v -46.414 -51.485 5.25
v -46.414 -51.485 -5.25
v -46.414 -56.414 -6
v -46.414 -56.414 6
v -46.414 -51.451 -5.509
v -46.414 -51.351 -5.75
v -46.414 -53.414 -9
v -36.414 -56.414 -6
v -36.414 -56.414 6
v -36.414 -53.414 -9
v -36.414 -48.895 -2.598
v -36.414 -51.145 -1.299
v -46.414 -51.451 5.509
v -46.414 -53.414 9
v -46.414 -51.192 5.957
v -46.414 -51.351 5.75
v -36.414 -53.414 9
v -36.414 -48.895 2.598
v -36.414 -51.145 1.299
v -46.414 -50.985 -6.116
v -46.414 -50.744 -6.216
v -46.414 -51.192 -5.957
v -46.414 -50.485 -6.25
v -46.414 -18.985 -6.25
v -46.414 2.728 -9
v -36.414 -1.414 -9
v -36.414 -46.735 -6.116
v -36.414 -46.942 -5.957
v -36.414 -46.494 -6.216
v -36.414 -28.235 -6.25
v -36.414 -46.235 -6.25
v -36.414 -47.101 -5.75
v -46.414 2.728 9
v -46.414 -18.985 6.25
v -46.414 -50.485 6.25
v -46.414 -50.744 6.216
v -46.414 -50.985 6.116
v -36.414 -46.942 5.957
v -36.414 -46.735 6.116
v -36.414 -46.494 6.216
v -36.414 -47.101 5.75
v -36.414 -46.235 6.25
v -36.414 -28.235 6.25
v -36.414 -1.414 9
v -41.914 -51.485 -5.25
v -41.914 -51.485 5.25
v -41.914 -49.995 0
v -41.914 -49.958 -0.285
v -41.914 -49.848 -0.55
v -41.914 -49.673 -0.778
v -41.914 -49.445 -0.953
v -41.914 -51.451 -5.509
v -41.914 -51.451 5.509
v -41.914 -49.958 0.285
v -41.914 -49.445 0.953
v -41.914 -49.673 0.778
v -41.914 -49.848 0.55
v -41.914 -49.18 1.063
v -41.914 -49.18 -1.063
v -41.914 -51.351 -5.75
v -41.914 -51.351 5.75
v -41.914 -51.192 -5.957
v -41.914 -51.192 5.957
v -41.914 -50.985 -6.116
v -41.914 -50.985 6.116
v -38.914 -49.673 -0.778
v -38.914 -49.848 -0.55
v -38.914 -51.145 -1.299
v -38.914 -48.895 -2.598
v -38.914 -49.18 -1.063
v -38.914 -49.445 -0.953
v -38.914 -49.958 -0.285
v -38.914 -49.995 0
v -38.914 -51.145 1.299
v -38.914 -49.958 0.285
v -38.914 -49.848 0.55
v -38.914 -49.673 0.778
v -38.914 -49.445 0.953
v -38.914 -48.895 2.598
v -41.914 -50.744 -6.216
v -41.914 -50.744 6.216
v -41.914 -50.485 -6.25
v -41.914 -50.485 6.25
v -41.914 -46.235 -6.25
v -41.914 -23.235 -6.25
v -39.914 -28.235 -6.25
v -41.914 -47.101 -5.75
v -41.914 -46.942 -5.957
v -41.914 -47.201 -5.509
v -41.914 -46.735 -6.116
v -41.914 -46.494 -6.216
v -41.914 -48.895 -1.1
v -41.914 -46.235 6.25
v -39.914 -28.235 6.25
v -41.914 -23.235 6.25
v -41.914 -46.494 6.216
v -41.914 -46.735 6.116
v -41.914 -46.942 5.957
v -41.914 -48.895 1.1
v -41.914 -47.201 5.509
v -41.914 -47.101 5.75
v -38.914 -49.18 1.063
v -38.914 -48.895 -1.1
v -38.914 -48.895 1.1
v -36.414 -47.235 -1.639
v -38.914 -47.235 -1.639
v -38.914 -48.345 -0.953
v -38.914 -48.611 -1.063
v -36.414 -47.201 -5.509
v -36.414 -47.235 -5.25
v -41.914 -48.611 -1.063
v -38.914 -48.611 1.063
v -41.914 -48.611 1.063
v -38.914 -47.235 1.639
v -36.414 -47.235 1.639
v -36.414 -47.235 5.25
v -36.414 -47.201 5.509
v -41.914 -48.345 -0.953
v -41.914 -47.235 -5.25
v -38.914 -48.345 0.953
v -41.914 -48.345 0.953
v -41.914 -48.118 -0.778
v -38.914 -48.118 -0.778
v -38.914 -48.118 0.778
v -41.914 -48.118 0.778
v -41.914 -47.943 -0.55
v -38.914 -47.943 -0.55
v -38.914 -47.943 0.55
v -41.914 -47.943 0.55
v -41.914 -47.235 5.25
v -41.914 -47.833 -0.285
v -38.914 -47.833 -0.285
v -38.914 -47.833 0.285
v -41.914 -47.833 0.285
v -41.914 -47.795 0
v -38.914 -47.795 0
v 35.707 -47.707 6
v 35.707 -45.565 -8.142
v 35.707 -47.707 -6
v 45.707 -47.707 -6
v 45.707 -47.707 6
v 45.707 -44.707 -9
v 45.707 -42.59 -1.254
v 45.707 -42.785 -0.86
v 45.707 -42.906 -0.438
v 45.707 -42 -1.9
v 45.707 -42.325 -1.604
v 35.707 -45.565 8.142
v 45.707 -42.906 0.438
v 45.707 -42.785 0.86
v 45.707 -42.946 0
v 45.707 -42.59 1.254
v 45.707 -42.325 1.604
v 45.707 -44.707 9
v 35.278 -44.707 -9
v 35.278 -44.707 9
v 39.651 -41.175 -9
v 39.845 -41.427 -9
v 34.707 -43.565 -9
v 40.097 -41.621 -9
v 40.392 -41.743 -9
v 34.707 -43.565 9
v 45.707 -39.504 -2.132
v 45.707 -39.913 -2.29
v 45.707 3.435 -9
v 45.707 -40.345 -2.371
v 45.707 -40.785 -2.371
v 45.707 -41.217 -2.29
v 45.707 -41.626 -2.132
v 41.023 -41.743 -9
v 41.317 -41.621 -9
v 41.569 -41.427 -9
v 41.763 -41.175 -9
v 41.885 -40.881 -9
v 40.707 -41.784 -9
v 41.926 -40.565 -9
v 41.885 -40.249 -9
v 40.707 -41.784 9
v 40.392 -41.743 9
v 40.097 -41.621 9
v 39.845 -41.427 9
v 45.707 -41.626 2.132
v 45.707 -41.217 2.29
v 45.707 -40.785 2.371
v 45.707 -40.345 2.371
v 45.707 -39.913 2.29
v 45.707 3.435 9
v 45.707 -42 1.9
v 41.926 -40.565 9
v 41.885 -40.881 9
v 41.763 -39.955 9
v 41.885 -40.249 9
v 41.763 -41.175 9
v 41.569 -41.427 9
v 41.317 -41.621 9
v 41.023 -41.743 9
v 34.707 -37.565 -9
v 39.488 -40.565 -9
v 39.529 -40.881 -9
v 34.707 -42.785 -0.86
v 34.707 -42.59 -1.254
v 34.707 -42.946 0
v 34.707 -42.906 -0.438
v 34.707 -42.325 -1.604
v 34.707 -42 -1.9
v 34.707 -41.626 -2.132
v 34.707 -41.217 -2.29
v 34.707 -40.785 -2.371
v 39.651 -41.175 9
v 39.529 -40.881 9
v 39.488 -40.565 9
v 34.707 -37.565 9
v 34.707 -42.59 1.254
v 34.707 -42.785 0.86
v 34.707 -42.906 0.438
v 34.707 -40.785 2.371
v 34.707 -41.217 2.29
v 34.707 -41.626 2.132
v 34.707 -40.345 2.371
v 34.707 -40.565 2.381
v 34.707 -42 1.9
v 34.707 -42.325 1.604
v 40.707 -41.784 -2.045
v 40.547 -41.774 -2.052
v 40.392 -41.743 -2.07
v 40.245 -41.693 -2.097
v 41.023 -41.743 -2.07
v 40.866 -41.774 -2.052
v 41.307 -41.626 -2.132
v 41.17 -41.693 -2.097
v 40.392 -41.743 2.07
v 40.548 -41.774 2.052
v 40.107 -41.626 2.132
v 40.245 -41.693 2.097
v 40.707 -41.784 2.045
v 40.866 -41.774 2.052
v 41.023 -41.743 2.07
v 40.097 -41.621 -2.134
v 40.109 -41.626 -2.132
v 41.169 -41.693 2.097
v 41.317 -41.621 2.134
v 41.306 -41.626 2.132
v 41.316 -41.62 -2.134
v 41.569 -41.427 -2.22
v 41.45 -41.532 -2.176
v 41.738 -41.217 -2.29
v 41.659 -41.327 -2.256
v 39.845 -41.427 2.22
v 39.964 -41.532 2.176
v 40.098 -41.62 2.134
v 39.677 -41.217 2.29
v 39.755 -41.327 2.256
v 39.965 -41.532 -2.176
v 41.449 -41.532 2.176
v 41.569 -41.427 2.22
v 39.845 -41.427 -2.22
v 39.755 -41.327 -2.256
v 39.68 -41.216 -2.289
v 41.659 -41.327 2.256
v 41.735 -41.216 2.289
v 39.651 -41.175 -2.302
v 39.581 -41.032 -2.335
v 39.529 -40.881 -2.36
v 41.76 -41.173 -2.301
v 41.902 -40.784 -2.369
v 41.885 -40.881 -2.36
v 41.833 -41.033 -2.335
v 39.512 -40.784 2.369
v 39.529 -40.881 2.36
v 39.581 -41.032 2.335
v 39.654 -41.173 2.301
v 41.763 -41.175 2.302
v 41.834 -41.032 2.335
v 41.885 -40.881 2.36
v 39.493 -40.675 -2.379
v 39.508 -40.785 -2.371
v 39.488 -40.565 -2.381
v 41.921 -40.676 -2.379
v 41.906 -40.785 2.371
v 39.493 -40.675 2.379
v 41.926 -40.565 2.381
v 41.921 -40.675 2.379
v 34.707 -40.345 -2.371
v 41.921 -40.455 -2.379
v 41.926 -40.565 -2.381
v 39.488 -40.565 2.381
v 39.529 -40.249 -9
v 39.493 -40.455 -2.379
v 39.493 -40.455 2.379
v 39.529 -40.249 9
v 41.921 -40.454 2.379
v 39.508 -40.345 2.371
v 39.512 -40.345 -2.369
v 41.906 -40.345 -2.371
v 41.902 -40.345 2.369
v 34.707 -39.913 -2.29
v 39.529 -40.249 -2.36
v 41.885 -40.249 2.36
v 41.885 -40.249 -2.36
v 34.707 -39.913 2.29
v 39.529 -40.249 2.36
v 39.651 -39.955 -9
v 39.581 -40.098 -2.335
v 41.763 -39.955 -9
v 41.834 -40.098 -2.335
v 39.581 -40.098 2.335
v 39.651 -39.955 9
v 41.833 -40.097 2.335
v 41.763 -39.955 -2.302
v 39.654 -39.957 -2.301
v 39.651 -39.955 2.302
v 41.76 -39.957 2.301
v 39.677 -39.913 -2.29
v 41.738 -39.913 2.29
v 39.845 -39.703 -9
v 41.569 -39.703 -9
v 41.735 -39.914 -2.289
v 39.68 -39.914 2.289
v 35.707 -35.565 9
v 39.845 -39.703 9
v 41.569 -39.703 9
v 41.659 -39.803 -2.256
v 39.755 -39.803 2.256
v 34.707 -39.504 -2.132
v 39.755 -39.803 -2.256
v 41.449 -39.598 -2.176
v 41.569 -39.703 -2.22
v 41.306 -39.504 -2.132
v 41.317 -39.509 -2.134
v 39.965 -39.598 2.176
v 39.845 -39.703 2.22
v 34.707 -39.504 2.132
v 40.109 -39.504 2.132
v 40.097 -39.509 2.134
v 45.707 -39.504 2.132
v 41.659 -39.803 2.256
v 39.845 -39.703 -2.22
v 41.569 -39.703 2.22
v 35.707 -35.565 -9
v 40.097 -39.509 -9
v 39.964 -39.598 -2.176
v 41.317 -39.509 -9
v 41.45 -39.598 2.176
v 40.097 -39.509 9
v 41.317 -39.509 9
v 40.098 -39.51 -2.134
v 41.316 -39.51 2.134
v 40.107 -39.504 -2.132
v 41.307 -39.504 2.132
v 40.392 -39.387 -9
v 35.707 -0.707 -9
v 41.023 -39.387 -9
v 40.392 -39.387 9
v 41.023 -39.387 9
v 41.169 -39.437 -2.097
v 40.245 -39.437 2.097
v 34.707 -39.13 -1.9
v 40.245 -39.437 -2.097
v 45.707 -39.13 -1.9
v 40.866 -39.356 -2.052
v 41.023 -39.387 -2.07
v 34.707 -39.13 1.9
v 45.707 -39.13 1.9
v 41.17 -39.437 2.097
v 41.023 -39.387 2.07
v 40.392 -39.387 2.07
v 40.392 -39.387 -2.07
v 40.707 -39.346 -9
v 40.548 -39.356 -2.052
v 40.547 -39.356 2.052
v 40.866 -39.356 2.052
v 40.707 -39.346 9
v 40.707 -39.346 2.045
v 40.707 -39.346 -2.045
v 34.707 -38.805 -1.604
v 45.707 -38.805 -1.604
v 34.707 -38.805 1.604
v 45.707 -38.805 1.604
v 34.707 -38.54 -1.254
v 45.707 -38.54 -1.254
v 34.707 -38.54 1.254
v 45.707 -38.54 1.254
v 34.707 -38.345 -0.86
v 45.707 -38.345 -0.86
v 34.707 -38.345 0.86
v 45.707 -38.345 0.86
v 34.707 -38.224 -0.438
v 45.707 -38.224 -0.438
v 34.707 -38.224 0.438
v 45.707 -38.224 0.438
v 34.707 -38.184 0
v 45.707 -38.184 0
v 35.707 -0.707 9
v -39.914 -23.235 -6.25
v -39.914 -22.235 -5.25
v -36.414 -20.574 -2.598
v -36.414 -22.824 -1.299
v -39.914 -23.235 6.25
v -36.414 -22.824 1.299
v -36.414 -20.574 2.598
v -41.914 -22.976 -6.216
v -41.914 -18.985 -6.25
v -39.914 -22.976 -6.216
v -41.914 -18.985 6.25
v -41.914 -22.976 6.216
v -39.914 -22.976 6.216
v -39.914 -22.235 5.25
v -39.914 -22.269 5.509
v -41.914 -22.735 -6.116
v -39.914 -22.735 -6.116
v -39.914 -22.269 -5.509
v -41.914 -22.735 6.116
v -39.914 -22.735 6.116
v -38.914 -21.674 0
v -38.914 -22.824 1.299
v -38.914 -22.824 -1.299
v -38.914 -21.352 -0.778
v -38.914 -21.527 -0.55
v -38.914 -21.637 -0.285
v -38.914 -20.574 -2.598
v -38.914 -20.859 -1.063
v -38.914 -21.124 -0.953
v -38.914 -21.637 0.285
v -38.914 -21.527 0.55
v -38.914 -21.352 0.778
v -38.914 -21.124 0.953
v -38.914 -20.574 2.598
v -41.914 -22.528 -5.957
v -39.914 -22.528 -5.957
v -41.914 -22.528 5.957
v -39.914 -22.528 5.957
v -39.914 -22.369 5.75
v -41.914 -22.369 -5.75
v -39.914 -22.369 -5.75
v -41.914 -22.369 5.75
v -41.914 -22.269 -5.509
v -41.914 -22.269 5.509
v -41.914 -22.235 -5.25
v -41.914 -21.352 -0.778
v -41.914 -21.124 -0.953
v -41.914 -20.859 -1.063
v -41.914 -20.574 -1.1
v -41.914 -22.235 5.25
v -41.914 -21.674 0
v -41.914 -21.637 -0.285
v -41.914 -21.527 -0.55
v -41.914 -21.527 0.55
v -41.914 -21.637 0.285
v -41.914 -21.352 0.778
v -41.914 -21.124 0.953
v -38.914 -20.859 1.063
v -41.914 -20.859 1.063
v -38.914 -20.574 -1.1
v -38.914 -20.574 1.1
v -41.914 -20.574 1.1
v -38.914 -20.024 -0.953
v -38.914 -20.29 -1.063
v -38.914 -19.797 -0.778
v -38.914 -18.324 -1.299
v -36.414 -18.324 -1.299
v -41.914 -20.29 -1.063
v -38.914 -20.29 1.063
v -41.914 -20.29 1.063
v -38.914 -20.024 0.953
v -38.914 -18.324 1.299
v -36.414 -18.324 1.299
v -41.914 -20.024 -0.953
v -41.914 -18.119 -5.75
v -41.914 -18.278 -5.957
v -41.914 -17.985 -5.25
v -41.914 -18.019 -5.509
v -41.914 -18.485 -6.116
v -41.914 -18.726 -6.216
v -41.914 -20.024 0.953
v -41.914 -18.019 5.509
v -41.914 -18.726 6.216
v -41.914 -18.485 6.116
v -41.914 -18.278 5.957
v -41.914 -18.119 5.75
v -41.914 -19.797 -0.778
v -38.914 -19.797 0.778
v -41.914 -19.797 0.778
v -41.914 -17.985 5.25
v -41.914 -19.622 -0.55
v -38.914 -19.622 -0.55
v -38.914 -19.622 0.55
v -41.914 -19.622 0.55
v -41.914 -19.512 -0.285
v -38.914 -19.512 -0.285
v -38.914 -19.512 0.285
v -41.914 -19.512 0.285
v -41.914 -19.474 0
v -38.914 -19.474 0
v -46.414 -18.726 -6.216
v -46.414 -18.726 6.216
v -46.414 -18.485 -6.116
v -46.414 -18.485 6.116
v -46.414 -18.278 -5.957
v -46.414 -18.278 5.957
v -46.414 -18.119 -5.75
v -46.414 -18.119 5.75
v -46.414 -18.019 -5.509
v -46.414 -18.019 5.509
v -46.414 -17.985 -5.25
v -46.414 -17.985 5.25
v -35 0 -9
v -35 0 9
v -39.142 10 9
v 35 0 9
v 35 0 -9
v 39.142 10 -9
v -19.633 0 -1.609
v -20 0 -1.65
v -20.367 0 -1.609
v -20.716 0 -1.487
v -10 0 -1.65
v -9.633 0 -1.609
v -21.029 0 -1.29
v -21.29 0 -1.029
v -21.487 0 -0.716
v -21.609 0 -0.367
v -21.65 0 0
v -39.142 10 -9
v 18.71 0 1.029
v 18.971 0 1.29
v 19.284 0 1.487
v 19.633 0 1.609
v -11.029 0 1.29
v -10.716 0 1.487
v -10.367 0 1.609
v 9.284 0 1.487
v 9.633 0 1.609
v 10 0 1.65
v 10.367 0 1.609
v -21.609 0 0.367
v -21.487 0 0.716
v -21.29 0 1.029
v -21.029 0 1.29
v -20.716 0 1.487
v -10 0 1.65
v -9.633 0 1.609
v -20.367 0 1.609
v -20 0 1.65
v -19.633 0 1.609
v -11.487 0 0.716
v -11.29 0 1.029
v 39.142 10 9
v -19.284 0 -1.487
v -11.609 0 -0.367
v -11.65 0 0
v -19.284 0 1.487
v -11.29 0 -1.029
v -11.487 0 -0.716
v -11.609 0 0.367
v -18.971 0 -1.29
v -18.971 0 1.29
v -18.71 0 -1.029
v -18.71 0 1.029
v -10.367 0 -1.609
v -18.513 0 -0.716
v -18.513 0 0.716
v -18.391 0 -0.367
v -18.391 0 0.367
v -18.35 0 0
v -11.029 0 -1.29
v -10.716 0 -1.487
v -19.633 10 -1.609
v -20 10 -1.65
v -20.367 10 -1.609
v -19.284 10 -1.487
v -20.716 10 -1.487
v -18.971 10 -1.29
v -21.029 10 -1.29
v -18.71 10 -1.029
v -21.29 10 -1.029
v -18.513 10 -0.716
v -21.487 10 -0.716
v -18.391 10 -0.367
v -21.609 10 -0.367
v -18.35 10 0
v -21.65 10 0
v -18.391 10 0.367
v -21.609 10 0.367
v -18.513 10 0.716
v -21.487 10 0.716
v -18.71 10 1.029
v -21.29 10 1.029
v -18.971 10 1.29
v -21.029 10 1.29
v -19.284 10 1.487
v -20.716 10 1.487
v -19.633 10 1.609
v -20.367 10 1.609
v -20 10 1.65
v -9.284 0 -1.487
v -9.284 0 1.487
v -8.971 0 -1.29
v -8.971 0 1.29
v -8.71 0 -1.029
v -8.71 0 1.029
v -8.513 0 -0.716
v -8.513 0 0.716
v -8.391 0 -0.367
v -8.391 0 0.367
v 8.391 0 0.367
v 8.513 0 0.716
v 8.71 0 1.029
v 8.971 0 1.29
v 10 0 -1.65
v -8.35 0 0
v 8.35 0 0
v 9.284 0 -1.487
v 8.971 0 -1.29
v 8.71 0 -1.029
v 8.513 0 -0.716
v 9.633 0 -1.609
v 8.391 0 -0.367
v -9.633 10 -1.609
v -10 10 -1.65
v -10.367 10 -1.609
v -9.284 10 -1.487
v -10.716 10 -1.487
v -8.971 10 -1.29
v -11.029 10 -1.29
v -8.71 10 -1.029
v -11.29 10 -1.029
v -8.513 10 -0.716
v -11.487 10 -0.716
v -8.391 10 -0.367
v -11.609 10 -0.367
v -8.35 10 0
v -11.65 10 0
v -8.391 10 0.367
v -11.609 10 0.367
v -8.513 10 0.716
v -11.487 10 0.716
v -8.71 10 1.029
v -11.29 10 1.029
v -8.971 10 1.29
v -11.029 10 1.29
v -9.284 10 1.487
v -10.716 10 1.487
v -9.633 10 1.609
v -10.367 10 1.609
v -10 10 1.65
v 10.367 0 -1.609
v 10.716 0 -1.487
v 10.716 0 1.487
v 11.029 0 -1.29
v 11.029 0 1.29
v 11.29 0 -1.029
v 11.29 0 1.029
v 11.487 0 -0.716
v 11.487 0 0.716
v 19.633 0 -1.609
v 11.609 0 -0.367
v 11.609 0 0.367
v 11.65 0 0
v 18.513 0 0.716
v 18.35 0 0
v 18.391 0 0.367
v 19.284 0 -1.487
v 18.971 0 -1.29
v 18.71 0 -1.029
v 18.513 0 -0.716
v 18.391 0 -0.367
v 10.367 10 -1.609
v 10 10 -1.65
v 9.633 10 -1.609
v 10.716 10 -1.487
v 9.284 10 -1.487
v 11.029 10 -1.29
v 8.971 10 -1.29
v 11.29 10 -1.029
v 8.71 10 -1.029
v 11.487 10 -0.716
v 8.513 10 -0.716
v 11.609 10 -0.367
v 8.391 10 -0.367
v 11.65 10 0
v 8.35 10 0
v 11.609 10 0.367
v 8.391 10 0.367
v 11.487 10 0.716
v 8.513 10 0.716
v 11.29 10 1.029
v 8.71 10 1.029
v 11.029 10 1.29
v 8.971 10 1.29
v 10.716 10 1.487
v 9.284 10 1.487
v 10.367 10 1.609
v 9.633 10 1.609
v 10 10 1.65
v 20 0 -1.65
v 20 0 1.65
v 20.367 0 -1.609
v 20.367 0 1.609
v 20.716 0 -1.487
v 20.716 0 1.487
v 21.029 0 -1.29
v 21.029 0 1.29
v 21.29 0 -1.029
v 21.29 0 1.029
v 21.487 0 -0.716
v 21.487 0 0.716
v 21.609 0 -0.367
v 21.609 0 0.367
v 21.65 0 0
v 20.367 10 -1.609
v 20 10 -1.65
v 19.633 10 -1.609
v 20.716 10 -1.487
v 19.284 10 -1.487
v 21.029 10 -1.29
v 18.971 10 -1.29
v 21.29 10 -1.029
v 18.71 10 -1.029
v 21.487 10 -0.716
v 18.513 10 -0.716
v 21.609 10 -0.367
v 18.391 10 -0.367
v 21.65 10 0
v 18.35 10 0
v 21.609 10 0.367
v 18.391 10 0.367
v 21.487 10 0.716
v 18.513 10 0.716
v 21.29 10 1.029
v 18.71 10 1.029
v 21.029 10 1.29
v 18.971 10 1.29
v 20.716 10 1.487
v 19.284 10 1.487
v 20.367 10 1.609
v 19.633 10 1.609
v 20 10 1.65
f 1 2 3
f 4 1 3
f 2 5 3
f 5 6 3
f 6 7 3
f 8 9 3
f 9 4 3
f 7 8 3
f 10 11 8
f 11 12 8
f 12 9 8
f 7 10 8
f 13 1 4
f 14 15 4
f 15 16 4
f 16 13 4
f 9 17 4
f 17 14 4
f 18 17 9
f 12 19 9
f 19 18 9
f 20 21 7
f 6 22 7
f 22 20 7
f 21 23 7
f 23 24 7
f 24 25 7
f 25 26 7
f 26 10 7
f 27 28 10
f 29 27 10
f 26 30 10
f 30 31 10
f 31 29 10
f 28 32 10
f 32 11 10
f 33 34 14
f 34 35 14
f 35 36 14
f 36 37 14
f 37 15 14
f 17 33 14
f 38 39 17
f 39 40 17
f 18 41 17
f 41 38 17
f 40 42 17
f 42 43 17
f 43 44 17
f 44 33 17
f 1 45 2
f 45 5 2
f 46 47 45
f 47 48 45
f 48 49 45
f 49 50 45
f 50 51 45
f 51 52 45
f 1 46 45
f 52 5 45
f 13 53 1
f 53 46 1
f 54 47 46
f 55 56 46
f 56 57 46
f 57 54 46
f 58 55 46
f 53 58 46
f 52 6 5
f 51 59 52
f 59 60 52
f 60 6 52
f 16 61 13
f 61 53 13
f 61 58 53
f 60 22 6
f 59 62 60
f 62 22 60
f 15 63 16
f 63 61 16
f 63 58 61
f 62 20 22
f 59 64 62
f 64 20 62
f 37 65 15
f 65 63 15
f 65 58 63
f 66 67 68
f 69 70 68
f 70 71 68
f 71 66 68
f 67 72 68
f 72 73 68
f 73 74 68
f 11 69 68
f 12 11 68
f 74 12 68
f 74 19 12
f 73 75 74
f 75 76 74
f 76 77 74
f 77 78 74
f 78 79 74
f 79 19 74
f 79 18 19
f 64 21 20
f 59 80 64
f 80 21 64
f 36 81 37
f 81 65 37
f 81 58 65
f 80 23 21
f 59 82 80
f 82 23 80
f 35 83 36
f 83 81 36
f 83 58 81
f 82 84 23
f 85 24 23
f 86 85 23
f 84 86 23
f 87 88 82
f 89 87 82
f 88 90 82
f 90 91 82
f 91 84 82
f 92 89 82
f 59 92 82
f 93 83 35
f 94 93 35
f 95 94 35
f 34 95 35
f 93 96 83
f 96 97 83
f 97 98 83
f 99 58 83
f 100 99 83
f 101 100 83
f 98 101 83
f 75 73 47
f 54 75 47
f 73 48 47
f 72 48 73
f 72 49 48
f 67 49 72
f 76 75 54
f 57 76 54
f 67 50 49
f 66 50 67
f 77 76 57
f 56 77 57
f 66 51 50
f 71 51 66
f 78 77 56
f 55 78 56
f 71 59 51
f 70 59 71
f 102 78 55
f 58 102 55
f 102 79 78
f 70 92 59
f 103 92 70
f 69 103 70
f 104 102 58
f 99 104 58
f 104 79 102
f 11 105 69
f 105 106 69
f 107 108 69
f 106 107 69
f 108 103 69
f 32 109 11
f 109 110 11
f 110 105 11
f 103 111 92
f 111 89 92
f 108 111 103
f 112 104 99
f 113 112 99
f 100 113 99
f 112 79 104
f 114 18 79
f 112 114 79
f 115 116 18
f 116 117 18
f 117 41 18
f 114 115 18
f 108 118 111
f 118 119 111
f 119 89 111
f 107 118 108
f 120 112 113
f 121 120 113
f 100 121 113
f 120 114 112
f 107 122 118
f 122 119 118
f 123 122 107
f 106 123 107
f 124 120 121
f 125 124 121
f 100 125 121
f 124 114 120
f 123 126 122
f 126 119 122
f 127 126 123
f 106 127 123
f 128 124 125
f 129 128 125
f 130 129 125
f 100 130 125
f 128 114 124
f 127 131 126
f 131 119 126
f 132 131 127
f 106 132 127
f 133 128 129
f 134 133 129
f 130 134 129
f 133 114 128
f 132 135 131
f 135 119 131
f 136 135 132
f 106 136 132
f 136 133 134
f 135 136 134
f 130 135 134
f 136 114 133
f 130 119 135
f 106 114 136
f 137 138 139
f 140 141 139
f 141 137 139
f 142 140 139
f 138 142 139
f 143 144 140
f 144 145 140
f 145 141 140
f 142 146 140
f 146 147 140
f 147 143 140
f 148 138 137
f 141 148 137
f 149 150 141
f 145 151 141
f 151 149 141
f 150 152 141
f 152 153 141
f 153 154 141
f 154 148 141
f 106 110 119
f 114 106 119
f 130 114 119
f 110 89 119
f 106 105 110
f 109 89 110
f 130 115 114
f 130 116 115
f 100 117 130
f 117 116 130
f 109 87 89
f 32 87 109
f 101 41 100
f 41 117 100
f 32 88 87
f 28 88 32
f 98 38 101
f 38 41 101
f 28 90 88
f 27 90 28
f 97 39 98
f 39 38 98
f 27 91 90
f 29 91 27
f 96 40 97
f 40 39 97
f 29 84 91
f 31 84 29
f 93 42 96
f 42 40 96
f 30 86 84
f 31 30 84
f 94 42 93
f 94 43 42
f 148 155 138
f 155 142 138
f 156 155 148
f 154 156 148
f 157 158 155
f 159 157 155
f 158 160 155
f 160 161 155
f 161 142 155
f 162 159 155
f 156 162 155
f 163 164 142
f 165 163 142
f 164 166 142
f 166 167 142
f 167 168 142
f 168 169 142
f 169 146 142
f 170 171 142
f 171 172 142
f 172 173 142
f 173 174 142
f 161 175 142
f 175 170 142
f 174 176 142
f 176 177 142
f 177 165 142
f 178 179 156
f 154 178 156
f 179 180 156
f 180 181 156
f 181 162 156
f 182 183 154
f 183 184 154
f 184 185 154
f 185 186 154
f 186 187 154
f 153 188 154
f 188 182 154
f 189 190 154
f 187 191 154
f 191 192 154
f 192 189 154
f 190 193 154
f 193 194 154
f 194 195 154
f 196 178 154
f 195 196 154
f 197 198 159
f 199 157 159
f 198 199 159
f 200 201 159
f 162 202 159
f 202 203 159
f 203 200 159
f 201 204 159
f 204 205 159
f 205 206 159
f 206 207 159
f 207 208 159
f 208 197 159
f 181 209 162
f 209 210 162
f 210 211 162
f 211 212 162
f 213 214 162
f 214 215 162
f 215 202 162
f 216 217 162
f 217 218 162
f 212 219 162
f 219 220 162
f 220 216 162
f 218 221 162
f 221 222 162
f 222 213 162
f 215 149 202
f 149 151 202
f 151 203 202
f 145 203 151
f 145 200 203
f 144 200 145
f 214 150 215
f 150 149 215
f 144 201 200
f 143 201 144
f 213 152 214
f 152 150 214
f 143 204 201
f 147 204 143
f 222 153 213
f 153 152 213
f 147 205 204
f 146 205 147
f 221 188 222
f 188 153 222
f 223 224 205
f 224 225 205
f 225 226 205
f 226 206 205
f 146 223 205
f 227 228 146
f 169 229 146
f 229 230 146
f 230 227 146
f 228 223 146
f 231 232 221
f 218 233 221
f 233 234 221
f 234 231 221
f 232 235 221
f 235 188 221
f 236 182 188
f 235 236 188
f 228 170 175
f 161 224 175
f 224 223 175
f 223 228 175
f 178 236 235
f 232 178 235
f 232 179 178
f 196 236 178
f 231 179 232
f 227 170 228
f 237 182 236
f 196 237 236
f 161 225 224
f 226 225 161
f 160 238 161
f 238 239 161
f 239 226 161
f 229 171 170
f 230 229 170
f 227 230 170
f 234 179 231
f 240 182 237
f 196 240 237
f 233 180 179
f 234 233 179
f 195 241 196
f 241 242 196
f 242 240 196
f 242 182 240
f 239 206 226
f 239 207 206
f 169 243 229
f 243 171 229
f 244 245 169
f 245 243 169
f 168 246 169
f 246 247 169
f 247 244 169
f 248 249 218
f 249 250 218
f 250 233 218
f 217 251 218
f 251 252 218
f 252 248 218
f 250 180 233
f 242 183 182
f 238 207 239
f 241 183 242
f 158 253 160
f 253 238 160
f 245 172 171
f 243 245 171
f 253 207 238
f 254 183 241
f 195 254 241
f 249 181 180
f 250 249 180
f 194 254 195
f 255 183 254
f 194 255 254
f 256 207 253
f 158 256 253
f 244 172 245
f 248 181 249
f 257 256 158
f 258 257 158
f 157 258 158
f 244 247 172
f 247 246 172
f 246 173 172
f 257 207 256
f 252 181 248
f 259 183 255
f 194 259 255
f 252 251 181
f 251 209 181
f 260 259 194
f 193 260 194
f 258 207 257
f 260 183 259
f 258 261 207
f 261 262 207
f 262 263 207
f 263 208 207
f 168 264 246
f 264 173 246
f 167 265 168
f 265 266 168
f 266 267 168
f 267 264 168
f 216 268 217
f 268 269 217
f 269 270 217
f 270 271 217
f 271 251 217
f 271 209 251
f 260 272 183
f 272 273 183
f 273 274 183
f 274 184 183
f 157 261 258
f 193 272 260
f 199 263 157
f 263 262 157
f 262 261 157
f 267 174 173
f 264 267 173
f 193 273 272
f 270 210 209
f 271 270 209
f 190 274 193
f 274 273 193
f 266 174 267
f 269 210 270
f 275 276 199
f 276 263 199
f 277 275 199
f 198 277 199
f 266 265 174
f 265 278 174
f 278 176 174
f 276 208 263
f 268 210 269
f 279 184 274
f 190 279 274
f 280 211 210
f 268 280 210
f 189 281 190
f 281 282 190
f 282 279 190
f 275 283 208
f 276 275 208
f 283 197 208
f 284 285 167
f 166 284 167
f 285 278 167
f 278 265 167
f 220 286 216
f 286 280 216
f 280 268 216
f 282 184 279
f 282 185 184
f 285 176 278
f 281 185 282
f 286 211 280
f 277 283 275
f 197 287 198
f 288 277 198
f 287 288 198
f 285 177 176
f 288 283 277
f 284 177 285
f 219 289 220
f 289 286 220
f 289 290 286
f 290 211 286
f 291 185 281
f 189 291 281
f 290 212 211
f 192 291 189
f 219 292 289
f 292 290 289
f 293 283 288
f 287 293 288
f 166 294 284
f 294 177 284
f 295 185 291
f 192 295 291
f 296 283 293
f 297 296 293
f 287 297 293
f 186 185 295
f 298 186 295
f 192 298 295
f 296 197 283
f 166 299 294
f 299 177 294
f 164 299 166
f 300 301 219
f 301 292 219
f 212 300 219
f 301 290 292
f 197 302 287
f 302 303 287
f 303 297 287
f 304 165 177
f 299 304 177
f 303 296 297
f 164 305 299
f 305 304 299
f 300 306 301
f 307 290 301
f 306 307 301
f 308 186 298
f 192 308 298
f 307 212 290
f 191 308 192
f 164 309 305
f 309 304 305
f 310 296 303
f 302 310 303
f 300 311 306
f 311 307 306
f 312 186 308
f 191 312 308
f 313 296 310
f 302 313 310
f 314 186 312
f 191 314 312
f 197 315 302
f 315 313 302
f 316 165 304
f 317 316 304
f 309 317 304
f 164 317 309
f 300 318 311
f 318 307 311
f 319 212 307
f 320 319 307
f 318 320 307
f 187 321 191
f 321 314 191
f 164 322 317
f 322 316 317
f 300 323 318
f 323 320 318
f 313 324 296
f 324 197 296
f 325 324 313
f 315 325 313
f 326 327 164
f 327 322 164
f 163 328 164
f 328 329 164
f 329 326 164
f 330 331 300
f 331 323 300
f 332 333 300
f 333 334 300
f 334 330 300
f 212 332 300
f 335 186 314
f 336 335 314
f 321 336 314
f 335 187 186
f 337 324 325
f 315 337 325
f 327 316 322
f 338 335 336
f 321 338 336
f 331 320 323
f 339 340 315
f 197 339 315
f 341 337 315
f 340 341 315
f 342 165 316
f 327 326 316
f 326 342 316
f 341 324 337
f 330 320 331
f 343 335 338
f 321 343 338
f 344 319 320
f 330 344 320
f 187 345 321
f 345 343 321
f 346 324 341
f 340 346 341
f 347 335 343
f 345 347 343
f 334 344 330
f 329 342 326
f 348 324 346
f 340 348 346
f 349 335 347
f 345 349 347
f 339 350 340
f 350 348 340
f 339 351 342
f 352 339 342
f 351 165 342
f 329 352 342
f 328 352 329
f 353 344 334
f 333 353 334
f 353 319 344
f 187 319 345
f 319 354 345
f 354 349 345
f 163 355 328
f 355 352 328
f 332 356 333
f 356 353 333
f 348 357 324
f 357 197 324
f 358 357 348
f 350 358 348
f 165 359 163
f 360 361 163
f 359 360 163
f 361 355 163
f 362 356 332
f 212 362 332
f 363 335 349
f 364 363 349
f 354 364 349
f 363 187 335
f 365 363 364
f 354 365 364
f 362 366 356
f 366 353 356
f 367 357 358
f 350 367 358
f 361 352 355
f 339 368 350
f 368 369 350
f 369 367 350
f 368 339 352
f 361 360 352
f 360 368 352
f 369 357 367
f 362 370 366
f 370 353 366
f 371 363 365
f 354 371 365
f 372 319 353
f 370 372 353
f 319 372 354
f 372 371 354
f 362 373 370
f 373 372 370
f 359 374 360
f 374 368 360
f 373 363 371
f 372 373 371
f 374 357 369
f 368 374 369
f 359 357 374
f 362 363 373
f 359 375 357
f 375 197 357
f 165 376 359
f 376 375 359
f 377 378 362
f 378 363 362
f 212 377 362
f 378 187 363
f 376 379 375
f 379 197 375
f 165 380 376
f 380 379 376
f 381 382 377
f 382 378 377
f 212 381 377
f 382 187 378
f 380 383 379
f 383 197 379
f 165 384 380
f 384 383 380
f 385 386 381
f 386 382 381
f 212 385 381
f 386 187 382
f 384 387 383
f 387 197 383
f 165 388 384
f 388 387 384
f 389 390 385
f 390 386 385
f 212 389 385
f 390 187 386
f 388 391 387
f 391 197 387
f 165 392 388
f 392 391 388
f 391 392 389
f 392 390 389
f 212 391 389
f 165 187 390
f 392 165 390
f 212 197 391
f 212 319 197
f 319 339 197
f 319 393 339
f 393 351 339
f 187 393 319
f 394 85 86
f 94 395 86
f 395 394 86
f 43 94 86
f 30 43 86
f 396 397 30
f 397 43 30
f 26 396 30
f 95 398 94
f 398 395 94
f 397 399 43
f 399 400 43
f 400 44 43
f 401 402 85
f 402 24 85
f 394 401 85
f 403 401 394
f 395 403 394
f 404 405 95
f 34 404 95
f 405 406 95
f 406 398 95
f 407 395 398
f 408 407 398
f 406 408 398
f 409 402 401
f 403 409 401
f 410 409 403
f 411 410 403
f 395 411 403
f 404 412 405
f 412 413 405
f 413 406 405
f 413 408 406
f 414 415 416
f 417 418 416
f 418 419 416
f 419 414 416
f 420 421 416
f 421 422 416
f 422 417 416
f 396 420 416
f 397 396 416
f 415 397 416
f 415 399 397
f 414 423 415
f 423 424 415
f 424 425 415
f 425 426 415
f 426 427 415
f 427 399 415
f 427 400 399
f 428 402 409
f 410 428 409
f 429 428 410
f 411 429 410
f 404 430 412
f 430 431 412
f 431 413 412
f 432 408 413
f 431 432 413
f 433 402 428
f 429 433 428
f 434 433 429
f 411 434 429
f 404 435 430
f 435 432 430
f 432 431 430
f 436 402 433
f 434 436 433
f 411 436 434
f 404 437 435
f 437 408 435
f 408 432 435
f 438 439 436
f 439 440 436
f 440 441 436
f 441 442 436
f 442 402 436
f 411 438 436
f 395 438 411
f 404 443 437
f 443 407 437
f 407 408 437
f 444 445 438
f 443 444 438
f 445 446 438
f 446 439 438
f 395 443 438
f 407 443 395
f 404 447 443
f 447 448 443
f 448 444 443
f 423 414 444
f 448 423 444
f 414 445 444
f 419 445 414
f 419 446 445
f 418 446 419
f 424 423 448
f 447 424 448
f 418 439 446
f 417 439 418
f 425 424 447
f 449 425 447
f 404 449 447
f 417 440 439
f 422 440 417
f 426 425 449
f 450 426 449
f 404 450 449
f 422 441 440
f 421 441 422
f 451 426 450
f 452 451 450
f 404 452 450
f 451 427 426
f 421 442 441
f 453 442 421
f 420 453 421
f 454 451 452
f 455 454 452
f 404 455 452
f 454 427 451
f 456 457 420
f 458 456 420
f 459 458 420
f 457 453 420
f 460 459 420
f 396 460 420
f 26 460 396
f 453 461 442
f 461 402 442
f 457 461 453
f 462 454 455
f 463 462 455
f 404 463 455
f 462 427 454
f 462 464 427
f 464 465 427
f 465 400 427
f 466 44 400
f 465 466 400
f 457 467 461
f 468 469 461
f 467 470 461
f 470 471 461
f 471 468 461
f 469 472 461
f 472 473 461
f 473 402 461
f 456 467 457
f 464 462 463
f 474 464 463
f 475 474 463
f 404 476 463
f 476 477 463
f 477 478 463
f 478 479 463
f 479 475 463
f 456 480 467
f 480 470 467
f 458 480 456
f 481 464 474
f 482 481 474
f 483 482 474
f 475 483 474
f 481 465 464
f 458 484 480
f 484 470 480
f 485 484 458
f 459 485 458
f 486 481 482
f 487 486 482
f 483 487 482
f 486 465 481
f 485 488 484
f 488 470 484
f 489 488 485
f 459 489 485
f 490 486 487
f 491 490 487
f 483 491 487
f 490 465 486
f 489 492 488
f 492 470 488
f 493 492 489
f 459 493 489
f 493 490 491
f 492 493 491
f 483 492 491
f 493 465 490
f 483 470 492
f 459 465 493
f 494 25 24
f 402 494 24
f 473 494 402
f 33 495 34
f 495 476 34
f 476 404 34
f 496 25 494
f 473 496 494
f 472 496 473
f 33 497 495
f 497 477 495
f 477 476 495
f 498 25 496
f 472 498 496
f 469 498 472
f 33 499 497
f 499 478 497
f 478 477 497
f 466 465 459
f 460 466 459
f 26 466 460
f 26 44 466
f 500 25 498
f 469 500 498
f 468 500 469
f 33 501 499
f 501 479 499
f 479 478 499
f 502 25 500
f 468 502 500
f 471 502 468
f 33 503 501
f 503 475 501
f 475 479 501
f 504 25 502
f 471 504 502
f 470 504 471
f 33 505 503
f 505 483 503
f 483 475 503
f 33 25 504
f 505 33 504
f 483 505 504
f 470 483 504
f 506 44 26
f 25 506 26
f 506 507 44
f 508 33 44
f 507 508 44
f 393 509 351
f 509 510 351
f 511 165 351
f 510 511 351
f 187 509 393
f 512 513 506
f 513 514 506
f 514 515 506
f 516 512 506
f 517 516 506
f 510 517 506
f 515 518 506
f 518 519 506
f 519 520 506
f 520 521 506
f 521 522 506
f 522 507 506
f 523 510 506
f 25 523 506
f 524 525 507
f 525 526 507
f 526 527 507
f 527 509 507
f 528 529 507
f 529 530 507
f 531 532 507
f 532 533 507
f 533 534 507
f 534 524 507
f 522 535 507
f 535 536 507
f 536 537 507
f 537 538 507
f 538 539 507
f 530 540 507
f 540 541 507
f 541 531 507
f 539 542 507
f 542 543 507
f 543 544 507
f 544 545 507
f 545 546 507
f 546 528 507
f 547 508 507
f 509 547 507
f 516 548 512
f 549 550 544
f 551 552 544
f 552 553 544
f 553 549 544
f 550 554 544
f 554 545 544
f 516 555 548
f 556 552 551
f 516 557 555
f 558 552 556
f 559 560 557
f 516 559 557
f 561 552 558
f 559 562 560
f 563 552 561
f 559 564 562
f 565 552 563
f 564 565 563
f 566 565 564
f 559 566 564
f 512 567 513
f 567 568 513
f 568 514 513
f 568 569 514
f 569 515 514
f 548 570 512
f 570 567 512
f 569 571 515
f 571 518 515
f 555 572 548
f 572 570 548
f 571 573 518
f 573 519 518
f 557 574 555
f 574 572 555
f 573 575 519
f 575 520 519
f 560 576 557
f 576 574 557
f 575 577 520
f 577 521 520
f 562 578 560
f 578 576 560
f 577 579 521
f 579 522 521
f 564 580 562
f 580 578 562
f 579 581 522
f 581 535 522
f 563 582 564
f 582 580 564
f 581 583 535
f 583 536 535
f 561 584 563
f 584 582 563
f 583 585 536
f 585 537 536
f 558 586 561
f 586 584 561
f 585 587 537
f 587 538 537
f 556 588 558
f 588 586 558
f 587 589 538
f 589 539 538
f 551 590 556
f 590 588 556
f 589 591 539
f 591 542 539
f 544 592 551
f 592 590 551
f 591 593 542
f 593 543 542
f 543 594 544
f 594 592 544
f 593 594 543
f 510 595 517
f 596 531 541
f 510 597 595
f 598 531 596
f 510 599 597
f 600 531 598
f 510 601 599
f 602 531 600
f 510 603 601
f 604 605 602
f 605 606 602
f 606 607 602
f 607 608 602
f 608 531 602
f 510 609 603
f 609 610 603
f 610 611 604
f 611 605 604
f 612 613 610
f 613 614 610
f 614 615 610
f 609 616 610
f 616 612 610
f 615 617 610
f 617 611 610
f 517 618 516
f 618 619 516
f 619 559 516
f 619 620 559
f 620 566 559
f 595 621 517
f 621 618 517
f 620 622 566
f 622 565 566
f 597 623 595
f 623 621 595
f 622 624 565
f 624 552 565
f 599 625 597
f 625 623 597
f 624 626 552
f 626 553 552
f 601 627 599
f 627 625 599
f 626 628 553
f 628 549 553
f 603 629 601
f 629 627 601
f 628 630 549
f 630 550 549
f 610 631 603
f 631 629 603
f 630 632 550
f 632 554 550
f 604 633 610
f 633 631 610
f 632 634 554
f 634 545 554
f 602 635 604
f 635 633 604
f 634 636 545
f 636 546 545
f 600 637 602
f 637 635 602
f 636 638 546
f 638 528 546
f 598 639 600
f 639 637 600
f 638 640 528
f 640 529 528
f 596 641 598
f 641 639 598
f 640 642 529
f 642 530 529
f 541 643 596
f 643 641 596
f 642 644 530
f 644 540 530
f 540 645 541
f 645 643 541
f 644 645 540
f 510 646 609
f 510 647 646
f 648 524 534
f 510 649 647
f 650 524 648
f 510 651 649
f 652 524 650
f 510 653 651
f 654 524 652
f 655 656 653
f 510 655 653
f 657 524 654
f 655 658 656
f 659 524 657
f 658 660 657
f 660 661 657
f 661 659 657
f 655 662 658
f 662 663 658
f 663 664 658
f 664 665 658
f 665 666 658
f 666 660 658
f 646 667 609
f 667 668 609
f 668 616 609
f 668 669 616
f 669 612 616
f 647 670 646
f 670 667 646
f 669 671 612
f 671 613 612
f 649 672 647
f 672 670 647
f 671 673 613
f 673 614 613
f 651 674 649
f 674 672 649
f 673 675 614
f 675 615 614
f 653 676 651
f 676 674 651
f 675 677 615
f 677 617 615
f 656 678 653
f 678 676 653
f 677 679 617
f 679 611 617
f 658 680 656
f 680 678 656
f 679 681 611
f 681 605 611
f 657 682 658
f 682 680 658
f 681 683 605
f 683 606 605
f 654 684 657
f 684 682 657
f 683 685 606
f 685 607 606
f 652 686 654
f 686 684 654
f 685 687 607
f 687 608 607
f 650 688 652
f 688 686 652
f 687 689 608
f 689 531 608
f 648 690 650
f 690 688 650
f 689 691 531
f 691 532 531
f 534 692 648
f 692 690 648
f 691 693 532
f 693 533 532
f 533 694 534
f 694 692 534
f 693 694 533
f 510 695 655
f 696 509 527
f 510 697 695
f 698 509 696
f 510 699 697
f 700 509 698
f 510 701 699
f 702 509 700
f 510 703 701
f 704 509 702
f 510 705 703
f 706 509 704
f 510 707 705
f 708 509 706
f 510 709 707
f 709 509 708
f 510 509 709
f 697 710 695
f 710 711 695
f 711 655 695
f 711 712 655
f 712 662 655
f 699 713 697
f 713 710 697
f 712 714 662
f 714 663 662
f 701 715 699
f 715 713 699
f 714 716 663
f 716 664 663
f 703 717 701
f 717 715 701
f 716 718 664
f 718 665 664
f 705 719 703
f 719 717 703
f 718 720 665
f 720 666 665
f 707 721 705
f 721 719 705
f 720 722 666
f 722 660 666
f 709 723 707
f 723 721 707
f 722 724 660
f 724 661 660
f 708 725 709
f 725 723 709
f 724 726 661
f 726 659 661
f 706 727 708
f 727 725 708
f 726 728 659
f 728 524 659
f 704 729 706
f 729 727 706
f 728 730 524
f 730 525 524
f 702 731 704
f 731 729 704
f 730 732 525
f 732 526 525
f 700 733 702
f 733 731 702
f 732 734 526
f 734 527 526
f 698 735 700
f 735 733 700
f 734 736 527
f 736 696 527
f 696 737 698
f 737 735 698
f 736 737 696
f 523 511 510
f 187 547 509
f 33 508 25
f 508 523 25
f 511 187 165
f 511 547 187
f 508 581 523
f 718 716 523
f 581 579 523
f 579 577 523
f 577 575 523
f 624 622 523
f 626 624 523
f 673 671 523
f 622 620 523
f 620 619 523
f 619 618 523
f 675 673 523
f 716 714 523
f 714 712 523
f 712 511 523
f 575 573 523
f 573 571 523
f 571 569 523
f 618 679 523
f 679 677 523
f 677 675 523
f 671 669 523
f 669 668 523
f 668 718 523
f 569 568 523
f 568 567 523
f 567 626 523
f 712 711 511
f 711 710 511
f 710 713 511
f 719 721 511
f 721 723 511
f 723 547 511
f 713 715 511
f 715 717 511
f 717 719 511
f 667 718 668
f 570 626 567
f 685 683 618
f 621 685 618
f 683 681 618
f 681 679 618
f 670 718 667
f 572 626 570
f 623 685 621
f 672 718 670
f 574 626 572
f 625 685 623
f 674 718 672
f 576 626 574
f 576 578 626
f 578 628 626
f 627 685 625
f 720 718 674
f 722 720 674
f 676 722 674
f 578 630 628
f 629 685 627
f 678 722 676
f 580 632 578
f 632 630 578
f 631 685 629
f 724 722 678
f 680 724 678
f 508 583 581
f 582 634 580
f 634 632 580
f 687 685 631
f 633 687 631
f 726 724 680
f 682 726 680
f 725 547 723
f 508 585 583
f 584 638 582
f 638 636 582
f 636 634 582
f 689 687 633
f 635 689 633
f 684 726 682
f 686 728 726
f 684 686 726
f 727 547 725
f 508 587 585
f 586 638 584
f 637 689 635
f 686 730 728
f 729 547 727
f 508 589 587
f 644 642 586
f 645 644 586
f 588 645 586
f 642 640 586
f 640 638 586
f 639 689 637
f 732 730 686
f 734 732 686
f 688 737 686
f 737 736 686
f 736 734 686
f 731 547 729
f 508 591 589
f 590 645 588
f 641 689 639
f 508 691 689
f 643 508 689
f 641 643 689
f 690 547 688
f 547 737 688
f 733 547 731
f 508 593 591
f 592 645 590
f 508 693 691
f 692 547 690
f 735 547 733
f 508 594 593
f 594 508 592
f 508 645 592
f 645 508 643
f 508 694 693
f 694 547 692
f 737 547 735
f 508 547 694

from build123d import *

# Parameters (mm, degrees)
BOSS_EXTRUDE1_DEPTH             = 9
SKETCH2_R                       = 0.5
CUT_EXTRUDE1_DEPTH              = 67.414213562
SKETCH9_R                       = 2.38125
PIN_HOLE_DEPTH                  = 93.121320344
SKETCH20_R                      = 1.21925
SPRING_PIN_DEPTH                = 10
SPRING_PIN_DEPTH_BACK           = 10
SKETCH32_W                      = 12.5
SKETCH32_H                      = 33.5
CUT_EXTRUDE11_DEPTH             = 4.5
CUT_EXTRUDE12_REACH             = 89.621
SKETCH33_W                      = 12.5
SKETCH33_H                      = 25
CUT_EXTRUDE13_REACH             = 89.621
SKETCH34_R                      = 1.1
FILLET1_R                       = 1
TAP_DRILL_FOR_M4X0_7_TAP1_D     = 3.3
TAP_DRILL_FOR_M4X0_7_TAP1_DEPTH = 66.414213562
SKETCH41_W                      = 12.5
SKETCH41_H                      = 6
BOSS_EXTRUDE4_DEPTH             = 3.5
CUT_EXTRUDE14_DEPTH             = 2.5
BOSS_EXTRUDE6_DEPTH             = 9
CHAMFER1_SIZE                   = 3
CUT_EXTRUDE15_REACH             = 84.121
SKETCH45_R                      = 2.38125


with BuildPart() as part:
    # Sketch1 → Boss-Extrude1 (new body, symmetric)
    with BuildSketch(Plane.XY):
        Polygon((-35, 0), (35, 0), (35.707106781, -0.707106781), (35.707106781, -47.707106781), (45.707106781, -47.707106781), (45.707106781, 3.435028843), (39.142135624, 10), (-39.142135624, 10), (-46.414213562, 2.727922061), (-46.414213562, -56.414213562), (-36.414213562, -56.414213562), (-36.414213562, -1.414213562), align=None)
    extrude(amount=BOSS_EXTRUDE1_DEPTH, both=True)

    # Sketch2 → Cut-Extrude1 (cut, through all)
    with BuildSketch(Plane(origin=(0, 10, 0), x_dir=(1, 0, 0), z_dir=(0, 1, 0))):
        with Locations((-10, 0)):
            Circle(SKETCH2_R)
        with Locations((10, 0)):
            Circle(SKETCH2_R)
        with Locations((-20, 0)):
            Circle(SKETCH2_R)
        with Locations((20, 0)):
            Circle(SKETCH2_R)
    extrude(amount=-CUT_EXTRUDE1_DEPTH, mode=Mode.SUBTRACT)

    # Sketch9 → Pin Hole (cut, through all)
    with BuildSketch(Plane(origin=(45.707106781, 0, 0), x_dir=(0, 0, -1), z_dir=(1, 0, 0))):
        with Locations((0, -40.564971157)):
            Circle(SKETCH9_R)
    extrude(amount=-PIN_HOLE_DEPTH, mode=Mode.SUBTRACT)

    # Sketch20 → spring pin (cut, two sides)
    with BuildSketch(Plane.XY) as spring_pin_sk:
        with Locations((40.707106781, -40.564971157)):
            Circle(SKETCH20_R)
    extrude(amount=SPRING_PIN_DEPTH, mode=Mode.SUBTRACT)
    extrude(spring_pin_sk.sketch, amount=-SPRING_PIN_DEPTH_BACK, mode=Mode.SUBTRACT)

    # Sketch32 → Cut-Extrude11 (cut)
    with BuildSketch(Plane.ZY.offset(46.414213562)):
        with Locations((0, -34.734971157)):
            Rectangle(SKETCH32_W, SKETCH32_H)
    extrude(amount=-CUT_EXTRUDE11_DEPTH, mode=Mode.SUBTRACT)

    # Sketch33 → Cut-Extrude12 (cut, up to next)
    with BuildSketch(Plane.ZY.offset(41.914213562), mode=Mode.PRIVATE) as cut_extrude12_sk1:
        with Locations((0, -34.734971157)):
            Rectangle(SKETCH33_W, SKETCH33_H)
    cut_extrude12_tool1 = extrude(cut_extrude12_sk1.sketch, amount=-CUT_EXTRUDE12_REACH, mode=Mode.PRIVATE) & part.part
    add(cut_extrude12_tool1.solids().sort_by_distance((-41.914214, -34.734971, 0))[0], mode=Mode.SUBTRACT)

    # Sketch34 → Cut-Extrude13 (cut, up to next)
    with BuildSketch(Plane.ZY.offset(41.914213562), mode=Mode.PRIVATE) as cut_extrude13_sk1:
        with Locations((0, -20.574371157)):
            Circle(SKETCH34_R)
    cut_extrude13_tool1 = extrude(cut_extrude13_sk1.sketch, amount=-CUT_EXTRUDE13_REACH, mode=Mode.PRIVATE) & part.part
    add(cut_extrude13_tool1.solids().sort_by_distance((-41.914214, -20.574371, 0))[0], mode=Mode.SUBTRACT)
    # Sketch34 → Cut-Extrude13 (cut, up to next)
    with BuildSketch(Plane.ZY.offset(41.914213562), mode=Mode.PRIVATE) as cut_extrude13_sk2:
        with Locations((0, -48.895371157)):
            Circle(SKETCH34_R)
    cut_extrude13_tool2 = extrude(cut_extrude13_sk2.sketch, amount=-CUT_EXTRUDE13_REACH, mode=Mode.PRIVATE) & part.part
    add(cut_extrude13_tool2.solids().sort_by_distance((-41.914214, -48.895371, 0))[0], mode=Mode.SUBTRACT)

    # Fillet1
    fillet1_edges = [part.edges().sort_by_distance(p)[0] for p in [
        (-44.164213562, -17.984971157, 6.25),
        (-44.164213562, -51.484971157, 6.25),
        (-44.164213562, -51.484971157, -6.25),
        (-44.164213562, -17.984971157, -6.25),
        (-39.164213562, -22.234971157, -6.25),
        (-39.164213562, -47.234971157, -6.25),
        (-39.164213562, -47.234971157, 6.25),
        (-39.164213562, -22.234971157, 6.25),
    ]]
    fillet(fillet1_edges, radius=FILLET1_R)

    # Tap Drill for M4x0.7 Tap1
    with Locations(Plane(origin=(0, 10, 0), x_dir=(1, 0, 0), z_dir=(0, 1, 0))):
        with Locations((-20, 0), (20, 0), (-10, 0), (10, 0)):
            Hole(TAP_DRILL_FOR_M4X0_7_TAP1_D / 2, depth=TAP_DRILL_FOR_M4X0_7_TAP1_DEPTH)

    # Sketch41 → Boss-Extrude4 (add)
    with BuildSketch(Plane(origin=(-36.414213562, 0, 0), x_dir=(0, 0, -1), z_dir=(1, 0, 0))):
        with Locations((0, -25.234971157)):
            Rectangle(SKETCH41_W, SKETCH41_H)
    extrude(amount=-BOSS_EXTRUDE4_DEPTH)

    # Sketch43 → Cut-Extrude14 (cut)
    with BuildSketch(Plane(origin=(-36.414213562, 0, 0), x_dir=(0, 0, -1), z_dir=(1, 0, 0))):
        Polygon((-1.299038106, -22.824371157), (1.299038106, -22.824371157), (2.598076211, -20.574371157), (1.299038106, -18.324371157), (-1.299038106, -18.324371157), (-2.598076211, -20.574371157), align=None)
        Polygon((-1.299038106, -46.645371157), (-2.598076211, -48.895371157), (-1.299038106, -51.145371157), (1.299038106, -51.145371157), (2.598076211, -48.895371157), (1.299038106, -46.645371157), align=None)
    extrude(amount=-CUT_EXTRUDE14_DEPTH, mode=Mode.SUBTRACT)

    # Sketch44 → Boss-Extrude6 (add, symmetric)
    with BuildSketch(Plane.XY):
        Polygon((34.707106781, -37.564971157), (34.707106781, -40.564971157), (35.707106781, -40.564971157), (35.707106781, -35.564971157), align=None)
        Polygon((34.707106781, -40.564971157), (34.707106781, -43.564971157), (35.707106781, -45.564971157), (35.707106781, -40.564971157), align=None)
    extrude(amount=BOSS_EXTRUDE6_DEPTH, both=True)

    # Chamfer1
    chamfer1_edges = [part.edges().sort_by_distance(p)[0] for p in [
        (40.707106781, -47.707106781, -9),
        (40.707106781, -47.707106781, 9),
        (-41.414213562, -56.414213562, -9),
        (-41.414213562, -56.414213562, 9),
    ]]
    chamfer(chamfer1_edges, length=CHAMFER1_SIZE)

    # Sketch45 → Cut-Extrude15 (cut, up to next)
    with BuildSketch(Plane(origin=(35.707106781, 0, 0), x_dir=(0, 0, -1), z_dir=(1, 0, 0)), mode=Mode.PRIVATE) as cut_extrude15_sk1:
        with Locations((0, -40.564971157)):
            Circle(SKETCH45_R)
    cut_extrude15_tool1 = extrude(cut_extrude15_sk1.sketch, amount=-CUT_EXTRUDE15_REACH, mode=Mode.PRIVATE) & part.part
    add(cut_extrude15_tool1.solids().sort_by_distance((35.707107, -40.564971, 0))[0], mode=Mode.SUBTRACT)


solid = part.part
